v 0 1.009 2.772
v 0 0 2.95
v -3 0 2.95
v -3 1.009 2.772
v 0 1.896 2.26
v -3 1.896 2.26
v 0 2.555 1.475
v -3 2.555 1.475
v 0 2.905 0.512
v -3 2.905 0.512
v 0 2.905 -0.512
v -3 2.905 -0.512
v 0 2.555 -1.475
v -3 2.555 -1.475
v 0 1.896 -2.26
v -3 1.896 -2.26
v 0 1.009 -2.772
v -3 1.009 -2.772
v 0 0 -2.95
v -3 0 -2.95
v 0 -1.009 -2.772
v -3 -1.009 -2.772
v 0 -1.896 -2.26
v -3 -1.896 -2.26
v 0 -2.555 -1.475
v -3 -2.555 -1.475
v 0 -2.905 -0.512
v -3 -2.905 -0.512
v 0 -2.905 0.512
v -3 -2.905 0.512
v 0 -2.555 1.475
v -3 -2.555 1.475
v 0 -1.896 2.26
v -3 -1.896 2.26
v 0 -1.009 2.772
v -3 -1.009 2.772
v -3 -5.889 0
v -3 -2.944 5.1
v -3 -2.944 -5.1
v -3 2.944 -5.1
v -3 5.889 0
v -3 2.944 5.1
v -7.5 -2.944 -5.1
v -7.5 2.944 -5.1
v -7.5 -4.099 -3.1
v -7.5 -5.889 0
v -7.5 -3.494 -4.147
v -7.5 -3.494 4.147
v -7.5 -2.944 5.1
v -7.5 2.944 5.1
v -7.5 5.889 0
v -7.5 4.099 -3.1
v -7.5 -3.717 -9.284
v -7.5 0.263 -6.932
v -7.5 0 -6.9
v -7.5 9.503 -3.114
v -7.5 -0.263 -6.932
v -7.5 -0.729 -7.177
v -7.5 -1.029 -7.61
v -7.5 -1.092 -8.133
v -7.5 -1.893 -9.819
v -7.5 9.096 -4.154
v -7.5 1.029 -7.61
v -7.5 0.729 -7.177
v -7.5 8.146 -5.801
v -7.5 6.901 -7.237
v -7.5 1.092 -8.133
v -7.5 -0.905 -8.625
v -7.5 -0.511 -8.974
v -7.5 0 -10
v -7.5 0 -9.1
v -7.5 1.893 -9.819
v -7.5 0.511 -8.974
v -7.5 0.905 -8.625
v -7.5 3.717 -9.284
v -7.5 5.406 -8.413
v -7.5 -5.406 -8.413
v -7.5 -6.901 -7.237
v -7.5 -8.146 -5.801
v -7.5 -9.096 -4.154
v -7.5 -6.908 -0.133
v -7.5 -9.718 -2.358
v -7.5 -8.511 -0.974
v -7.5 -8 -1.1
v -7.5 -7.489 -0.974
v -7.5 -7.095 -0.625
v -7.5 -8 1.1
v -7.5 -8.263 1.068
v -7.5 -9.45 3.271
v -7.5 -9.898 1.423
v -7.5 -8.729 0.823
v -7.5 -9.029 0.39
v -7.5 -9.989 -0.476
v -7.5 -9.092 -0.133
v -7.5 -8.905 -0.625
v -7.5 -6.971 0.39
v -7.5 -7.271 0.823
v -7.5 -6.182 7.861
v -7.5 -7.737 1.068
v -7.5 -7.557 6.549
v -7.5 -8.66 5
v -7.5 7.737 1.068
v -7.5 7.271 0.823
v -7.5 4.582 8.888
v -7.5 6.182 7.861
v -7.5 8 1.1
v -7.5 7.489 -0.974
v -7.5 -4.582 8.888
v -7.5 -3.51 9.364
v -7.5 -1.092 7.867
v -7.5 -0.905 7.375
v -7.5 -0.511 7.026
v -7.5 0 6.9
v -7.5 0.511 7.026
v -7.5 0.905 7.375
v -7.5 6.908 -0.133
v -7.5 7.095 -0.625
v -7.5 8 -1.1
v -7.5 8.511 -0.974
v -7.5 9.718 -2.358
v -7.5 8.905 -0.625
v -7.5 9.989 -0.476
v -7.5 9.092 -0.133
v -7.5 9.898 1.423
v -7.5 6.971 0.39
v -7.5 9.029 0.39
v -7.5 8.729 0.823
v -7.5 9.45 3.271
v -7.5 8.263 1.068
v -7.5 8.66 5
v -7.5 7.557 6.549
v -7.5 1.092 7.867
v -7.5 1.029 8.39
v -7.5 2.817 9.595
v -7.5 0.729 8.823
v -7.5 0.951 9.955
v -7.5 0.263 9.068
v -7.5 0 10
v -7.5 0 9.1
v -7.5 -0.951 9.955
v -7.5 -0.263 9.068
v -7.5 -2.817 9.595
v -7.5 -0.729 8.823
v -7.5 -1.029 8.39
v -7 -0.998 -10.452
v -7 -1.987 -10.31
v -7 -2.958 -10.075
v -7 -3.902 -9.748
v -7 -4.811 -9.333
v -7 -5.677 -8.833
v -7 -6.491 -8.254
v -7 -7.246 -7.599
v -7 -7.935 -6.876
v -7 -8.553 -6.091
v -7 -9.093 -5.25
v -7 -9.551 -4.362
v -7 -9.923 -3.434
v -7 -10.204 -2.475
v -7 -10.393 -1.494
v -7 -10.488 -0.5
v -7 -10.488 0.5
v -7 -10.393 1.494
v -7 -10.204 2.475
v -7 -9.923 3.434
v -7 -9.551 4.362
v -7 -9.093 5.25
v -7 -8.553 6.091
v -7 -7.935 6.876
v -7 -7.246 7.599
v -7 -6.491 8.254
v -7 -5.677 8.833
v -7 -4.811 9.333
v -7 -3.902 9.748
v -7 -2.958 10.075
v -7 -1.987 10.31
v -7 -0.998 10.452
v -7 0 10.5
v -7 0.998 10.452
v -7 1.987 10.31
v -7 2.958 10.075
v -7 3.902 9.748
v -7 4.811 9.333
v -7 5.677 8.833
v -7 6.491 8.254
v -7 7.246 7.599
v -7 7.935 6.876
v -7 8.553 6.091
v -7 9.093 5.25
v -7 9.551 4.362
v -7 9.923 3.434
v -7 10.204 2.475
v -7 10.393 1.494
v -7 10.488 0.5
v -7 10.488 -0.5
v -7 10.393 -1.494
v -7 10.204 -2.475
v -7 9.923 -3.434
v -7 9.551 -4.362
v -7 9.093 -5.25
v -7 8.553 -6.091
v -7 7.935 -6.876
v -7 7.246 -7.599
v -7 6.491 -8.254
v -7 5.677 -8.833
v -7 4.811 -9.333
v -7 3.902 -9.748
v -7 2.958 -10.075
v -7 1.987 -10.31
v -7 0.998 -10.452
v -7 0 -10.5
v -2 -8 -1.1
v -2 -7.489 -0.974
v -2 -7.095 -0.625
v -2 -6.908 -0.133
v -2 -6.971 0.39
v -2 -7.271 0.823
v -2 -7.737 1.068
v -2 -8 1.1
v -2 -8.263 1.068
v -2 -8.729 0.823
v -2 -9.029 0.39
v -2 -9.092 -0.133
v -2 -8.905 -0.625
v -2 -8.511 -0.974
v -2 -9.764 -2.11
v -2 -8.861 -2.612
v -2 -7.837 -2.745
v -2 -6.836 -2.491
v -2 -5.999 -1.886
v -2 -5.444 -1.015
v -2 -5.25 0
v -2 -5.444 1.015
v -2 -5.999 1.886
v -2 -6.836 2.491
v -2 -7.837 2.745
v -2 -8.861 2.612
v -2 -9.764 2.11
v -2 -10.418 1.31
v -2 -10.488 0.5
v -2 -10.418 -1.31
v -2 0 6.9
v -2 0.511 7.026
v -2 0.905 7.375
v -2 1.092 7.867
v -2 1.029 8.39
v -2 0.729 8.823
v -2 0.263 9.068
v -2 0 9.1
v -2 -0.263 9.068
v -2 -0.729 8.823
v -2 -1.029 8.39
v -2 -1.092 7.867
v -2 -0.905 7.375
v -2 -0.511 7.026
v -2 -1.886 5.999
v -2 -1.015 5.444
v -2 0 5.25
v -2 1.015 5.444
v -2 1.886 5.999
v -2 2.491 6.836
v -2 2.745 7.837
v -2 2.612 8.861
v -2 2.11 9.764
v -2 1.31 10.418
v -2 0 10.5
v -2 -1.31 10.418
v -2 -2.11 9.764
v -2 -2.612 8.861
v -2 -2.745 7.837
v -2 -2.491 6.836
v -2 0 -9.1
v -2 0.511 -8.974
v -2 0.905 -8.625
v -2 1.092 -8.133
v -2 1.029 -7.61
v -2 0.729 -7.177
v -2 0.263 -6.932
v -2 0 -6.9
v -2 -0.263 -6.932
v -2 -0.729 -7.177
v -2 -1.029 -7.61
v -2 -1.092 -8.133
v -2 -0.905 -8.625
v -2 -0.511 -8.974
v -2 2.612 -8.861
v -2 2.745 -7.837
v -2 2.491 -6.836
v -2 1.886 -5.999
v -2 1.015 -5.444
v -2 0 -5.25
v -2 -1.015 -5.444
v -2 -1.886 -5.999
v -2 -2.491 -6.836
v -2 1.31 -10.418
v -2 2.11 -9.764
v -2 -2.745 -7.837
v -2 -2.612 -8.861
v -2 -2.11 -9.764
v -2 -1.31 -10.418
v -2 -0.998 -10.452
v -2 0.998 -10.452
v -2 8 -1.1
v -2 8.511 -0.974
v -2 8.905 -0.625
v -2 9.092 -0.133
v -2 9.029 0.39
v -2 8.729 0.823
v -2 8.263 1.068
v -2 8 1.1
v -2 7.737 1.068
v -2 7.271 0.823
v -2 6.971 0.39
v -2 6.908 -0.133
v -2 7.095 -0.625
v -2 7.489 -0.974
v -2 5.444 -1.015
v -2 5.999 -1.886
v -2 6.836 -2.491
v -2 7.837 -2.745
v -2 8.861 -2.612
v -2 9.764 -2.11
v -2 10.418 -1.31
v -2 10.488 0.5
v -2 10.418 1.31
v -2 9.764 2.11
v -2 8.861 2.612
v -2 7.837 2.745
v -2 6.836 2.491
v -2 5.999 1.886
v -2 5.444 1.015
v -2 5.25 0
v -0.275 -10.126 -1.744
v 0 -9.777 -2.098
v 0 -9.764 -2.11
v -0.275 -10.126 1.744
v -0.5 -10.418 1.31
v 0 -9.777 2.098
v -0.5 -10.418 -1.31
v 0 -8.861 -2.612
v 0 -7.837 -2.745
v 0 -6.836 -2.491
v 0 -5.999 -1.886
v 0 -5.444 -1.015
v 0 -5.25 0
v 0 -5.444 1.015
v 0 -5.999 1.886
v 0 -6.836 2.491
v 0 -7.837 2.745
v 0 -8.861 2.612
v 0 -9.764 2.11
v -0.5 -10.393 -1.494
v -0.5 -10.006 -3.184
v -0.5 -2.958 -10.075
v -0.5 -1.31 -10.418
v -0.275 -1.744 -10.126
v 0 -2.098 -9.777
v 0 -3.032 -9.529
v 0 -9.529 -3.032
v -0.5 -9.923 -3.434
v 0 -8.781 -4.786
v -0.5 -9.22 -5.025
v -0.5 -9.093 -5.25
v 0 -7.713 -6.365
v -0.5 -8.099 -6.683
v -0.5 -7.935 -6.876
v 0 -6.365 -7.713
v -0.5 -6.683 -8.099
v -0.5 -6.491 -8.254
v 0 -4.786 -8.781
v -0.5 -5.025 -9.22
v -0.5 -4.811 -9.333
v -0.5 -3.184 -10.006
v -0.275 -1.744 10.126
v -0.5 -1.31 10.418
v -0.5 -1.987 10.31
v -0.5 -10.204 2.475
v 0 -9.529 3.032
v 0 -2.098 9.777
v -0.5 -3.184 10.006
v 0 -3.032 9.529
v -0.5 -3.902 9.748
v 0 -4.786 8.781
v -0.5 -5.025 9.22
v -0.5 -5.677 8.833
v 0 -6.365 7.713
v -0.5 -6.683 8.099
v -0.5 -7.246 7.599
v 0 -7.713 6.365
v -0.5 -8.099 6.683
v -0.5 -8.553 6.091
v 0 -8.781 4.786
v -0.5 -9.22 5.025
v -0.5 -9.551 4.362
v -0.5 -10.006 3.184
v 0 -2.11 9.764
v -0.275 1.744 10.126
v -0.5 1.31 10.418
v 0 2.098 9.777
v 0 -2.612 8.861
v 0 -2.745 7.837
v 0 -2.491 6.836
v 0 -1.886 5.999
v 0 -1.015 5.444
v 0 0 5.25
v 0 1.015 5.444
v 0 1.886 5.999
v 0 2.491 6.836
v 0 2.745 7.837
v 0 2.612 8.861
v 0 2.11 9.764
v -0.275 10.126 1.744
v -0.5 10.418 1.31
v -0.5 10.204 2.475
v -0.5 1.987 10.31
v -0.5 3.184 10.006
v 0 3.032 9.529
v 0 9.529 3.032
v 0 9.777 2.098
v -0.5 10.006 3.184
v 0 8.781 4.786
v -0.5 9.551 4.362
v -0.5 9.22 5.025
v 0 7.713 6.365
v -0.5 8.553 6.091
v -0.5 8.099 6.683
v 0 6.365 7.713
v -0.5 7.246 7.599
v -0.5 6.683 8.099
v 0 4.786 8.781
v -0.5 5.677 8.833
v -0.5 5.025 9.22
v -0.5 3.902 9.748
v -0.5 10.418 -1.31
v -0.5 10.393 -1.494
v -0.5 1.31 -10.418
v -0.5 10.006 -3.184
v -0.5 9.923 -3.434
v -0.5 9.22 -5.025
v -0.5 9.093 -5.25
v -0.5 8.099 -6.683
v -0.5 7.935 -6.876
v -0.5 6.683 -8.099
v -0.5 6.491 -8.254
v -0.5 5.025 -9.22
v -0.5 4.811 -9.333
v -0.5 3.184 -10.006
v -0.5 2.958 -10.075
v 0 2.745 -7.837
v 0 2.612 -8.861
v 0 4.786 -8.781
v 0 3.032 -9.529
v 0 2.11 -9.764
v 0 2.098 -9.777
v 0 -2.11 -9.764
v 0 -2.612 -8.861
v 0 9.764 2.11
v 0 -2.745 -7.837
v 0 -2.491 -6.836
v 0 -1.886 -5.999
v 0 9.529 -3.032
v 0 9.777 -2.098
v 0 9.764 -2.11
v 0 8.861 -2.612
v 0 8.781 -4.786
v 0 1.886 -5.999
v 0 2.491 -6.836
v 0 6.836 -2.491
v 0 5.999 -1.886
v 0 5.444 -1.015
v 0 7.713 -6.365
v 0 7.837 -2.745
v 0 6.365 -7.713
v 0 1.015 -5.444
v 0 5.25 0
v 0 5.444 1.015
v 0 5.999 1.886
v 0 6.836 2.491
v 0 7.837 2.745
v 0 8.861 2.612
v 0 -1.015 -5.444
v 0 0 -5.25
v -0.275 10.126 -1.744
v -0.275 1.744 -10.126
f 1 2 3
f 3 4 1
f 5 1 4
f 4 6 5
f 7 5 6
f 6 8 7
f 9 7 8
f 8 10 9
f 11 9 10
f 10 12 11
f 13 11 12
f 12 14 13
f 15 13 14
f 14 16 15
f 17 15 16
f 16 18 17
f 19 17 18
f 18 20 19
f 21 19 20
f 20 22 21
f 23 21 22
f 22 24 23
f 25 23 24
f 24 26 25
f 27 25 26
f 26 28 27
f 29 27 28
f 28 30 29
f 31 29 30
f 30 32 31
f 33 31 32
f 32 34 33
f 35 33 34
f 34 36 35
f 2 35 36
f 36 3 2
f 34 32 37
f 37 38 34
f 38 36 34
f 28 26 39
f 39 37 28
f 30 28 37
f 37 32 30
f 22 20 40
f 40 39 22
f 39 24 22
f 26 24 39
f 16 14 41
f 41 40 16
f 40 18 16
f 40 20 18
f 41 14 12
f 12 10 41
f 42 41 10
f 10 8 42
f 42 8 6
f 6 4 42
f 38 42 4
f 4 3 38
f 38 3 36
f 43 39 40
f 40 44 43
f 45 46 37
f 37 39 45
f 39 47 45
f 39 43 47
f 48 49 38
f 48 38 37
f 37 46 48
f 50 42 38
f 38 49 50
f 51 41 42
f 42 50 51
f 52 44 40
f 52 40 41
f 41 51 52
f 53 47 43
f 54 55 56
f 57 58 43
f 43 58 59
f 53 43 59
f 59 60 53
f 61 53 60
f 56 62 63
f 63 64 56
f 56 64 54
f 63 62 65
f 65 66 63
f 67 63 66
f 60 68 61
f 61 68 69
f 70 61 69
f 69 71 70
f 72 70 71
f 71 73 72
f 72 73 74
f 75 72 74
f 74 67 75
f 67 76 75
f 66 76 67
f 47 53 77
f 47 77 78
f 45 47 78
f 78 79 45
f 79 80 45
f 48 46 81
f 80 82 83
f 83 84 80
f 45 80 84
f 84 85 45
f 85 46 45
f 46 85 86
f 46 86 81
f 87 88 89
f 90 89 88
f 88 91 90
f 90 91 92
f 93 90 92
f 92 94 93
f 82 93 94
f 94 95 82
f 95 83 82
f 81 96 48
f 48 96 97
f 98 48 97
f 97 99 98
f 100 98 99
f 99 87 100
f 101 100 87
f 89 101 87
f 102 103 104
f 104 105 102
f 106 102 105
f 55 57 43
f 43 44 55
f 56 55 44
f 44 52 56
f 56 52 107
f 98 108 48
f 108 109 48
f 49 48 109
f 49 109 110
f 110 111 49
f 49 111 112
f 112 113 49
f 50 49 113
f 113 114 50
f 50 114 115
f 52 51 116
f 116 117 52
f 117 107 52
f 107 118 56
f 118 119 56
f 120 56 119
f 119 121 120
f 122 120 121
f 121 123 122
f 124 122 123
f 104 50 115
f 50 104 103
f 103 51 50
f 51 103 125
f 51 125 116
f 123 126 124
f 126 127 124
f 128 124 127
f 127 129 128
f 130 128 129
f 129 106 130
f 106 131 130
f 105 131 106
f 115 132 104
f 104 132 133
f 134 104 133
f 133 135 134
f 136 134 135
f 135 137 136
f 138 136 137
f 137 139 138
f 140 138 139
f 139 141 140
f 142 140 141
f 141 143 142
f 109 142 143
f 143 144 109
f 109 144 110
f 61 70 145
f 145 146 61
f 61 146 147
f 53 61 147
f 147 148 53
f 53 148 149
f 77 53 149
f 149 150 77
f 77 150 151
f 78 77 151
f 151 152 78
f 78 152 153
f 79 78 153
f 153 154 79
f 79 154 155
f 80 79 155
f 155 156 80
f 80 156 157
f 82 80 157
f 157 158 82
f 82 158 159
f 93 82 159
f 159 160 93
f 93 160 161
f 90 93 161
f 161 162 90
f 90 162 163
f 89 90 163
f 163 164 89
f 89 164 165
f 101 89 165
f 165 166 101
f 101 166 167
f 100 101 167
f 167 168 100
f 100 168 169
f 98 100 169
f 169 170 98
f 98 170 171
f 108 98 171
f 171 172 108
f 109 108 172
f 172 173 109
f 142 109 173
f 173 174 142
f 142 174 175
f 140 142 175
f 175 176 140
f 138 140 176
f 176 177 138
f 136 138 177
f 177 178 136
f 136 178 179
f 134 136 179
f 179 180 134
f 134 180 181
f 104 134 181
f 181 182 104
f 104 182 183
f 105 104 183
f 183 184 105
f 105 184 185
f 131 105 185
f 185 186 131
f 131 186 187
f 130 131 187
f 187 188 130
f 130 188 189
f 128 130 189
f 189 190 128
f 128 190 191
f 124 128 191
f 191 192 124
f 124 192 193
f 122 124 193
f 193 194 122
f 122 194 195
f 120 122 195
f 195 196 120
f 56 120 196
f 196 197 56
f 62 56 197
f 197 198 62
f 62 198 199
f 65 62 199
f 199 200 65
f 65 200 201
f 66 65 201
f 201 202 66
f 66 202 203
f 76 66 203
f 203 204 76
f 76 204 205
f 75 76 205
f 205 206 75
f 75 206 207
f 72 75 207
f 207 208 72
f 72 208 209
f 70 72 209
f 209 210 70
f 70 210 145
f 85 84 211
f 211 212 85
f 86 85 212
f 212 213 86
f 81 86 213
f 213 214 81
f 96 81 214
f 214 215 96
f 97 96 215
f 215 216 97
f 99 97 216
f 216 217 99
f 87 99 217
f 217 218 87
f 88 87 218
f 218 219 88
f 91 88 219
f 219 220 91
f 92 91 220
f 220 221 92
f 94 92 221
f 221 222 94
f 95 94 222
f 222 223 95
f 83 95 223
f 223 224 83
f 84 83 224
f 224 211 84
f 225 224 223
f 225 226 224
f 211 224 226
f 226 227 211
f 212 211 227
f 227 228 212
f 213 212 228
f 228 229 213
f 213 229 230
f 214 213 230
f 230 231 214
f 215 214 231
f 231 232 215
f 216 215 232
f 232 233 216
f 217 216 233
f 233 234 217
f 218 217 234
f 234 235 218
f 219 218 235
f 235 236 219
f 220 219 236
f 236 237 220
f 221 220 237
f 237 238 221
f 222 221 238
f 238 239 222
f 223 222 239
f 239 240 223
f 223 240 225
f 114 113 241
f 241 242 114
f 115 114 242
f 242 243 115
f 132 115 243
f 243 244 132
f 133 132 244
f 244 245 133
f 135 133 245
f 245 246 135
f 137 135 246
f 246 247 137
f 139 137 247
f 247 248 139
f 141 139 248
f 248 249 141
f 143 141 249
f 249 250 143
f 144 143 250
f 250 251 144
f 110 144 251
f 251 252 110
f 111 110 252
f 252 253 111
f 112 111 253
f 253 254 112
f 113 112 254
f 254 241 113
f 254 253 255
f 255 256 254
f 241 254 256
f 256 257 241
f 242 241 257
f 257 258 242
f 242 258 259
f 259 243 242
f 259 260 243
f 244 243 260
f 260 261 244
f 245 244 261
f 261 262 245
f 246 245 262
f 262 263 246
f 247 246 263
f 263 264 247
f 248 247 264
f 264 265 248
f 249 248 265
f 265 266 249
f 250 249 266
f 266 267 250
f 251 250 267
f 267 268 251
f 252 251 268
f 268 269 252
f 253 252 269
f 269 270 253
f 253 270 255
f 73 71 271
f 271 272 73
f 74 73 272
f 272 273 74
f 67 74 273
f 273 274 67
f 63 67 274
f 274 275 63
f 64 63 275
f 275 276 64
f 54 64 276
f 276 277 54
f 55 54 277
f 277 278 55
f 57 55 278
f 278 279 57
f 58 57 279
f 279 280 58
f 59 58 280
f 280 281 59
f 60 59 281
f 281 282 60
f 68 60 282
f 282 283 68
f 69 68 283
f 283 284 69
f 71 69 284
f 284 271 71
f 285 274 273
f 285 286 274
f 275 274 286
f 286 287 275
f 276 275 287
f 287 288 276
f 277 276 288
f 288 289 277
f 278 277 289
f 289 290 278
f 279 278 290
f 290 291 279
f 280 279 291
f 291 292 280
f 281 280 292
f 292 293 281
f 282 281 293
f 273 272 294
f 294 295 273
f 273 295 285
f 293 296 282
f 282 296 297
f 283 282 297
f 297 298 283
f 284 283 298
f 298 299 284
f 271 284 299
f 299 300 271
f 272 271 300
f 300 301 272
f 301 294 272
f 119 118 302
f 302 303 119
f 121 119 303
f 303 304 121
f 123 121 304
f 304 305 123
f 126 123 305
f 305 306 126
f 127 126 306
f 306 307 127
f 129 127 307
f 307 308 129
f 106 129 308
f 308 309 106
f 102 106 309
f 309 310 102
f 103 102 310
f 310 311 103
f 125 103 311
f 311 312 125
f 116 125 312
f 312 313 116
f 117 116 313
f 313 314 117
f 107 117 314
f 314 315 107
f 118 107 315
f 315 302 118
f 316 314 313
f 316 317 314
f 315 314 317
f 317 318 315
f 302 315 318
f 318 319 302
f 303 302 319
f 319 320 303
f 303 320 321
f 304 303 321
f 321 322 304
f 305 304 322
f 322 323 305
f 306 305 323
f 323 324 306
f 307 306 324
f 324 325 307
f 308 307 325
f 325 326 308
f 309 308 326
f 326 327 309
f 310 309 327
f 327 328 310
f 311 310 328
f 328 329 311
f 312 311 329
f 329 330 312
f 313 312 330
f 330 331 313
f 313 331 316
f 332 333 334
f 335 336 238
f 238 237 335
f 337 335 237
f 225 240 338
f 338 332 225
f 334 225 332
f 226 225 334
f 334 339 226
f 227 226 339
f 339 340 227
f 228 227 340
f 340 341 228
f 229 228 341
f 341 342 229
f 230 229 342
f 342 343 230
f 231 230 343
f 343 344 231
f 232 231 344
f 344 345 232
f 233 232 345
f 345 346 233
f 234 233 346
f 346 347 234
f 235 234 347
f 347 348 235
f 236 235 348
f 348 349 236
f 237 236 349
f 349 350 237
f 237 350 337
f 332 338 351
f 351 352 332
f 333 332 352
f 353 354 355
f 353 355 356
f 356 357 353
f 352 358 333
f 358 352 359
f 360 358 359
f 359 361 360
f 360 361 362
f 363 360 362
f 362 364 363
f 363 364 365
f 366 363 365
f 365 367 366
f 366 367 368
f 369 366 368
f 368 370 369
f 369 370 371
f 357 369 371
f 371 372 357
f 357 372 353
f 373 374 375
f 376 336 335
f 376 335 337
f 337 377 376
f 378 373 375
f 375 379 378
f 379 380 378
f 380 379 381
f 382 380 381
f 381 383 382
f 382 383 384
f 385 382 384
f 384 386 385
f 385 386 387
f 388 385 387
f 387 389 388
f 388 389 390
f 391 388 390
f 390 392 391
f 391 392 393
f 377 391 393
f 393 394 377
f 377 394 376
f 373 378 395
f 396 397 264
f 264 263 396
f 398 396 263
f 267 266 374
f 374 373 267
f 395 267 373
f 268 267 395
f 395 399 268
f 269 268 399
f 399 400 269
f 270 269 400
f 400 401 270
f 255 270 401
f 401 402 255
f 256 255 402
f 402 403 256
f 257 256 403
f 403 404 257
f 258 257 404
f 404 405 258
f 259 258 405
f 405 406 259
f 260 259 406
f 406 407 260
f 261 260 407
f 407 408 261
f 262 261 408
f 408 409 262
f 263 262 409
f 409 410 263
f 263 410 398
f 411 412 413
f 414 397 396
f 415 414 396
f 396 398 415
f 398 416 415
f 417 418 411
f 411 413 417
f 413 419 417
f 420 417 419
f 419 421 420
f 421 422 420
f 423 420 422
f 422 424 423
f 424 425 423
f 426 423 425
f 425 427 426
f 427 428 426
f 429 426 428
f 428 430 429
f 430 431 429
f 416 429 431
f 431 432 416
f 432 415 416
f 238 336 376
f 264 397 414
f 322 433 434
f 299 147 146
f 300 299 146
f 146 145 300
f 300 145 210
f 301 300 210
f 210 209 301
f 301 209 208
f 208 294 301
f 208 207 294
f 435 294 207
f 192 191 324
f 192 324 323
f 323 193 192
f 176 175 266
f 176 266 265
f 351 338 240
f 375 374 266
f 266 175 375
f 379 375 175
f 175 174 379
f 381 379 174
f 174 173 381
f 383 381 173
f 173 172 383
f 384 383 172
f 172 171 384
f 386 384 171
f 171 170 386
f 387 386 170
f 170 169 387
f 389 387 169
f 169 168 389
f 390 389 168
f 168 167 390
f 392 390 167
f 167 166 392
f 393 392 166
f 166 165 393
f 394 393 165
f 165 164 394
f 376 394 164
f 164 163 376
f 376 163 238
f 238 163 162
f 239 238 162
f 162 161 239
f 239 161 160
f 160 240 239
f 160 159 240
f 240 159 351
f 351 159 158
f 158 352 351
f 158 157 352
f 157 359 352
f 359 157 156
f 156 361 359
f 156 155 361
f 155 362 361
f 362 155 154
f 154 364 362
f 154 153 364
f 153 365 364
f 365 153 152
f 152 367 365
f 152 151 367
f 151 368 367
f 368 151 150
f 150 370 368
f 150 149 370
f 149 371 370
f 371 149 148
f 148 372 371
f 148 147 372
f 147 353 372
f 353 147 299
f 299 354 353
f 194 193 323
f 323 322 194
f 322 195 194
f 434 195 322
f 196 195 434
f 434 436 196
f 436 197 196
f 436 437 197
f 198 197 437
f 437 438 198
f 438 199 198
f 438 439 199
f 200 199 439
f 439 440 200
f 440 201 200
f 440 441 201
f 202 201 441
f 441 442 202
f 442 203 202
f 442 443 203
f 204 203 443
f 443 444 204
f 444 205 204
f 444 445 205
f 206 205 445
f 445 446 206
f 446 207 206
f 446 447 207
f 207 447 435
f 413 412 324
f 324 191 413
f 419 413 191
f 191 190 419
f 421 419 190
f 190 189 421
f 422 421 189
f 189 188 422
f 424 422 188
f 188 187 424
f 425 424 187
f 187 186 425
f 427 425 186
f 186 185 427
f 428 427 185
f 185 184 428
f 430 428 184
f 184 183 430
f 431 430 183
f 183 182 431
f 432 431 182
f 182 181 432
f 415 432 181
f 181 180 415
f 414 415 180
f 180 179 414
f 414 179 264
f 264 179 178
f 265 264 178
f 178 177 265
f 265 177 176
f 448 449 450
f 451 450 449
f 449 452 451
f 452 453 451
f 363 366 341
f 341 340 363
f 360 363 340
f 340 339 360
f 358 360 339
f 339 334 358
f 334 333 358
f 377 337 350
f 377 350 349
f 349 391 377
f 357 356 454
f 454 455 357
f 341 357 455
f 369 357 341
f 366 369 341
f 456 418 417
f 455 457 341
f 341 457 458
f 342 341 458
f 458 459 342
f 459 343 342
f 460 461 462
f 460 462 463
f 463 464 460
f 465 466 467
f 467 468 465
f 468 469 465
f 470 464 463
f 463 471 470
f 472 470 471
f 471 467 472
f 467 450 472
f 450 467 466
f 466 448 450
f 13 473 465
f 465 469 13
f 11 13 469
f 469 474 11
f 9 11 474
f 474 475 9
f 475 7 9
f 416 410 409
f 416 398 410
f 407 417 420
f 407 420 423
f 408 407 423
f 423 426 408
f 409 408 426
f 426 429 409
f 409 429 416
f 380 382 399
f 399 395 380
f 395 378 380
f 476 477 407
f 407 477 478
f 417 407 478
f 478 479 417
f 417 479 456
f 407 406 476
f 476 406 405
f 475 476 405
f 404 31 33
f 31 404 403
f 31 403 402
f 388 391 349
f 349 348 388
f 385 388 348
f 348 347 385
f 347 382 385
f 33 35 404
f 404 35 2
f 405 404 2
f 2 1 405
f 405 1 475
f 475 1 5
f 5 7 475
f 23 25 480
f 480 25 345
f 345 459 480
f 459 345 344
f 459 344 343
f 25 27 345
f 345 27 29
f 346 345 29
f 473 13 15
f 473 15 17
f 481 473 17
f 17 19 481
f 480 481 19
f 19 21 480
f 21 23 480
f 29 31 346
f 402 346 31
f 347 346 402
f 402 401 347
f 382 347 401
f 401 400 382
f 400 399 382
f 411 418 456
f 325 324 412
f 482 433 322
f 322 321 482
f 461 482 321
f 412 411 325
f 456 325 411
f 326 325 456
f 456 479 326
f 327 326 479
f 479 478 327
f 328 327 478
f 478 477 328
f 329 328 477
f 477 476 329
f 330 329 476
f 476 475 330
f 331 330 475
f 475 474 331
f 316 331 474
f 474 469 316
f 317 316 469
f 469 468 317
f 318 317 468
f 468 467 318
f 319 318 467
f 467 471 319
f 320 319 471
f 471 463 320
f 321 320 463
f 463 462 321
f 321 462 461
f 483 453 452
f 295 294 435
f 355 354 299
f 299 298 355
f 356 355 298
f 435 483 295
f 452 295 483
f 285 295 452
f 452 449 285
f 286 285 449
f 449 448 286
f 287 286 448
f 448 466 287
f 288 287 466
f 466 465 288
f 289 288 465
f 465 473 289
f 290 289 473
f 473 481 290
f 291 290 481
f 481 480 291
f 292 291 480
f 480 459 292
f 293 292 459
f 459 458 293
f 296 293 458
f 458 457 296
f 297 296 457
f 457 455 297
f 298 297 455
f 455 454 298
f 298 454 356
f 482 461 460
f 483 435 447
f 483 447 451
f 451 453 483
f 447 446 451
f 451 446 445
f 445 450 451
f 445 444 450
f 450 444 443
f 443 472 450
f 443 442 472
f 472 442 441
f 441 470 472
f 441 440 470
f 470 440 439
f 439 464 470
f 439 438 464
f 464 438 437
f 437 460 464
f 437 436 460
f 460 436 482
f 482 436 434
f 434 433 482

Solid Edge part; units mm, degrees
sketch "Sketch1" plane through (0, 0, 0) normal (0, -1, 0) x (1, 0, 0)
  line L0 (-7.5, 10.5) -> (0, 10.5)
  line L1 (0, 10.5) -> (0, 2.95)
  line L2 (-7.5, 2.95) -> (0, 2.95)
  line L3 (-7.5, 10.5) -> (-7.5, 2.95)
  dimension "D1" = 7.5
revolve "RevolvedProtrusion1" add sketch "Sketch1" angle 360 about axis through (0, 0, 0) along (1, 0, 0)
sketch "Sketch2" plane through (-7.5, 0, 0) normal (-1, 0, 0) x (0, -1, 0)
  line L0 (2.9445, -5.1) -> (5.889, 0)
  line L1 (5.889, 0) -> (2.9445, 5.1)
  line L2 (2.9445, 5.1) -> (-2.9445, 5.1)
  line L3 (-2.9445, 5.1) -> (-5.889, 0)
  line L4 (-5.889, 0) -> (-2.9445, -5.1)
  line L5 (-2.9445, -5.1) -> (2.9445, -5.1)
  dimension "D1" = 10.2
extrude "Cutout1" cut sketch "Sketch2" against normal blind 4.5
chamfer "Fase_2" distance 0.5 angle 45 2 edges at (-7.5, 0, -10.5) (0, 0, -10.5)
hole "Bohrung_1" at (0, -8, 0) direction (-1, 0, 0) diameter 2.2 end up to next
hole "Hole1" at (0, 0, 8) direction (-1, 0, 0) diameter 2.2 end up to next
hole "Hole2" at (0, 0, -8) direction (-1, 0, 0) diameter 2.2 end up to next
hole "Hole3" at (0, 8, 0) direction (-1, 0, 0) diameter 2.2 end up to next
hole "Bohrung_5" at (0, -8, 0) direction (-1, 0, 0) diameter 5.5 depth 2
hole "Hole4" at (0, 0, 8) direction (-1, 0, 0) diameter 5.5 depth 2
hole "Hole5" at (0, 8, 0) direction (-1, 0, 0) diameter 5.5 depth 2
hole "Hole6" at (0, 0, -8) direction (-1, 0, 0) diameter 5.5 depth 2
